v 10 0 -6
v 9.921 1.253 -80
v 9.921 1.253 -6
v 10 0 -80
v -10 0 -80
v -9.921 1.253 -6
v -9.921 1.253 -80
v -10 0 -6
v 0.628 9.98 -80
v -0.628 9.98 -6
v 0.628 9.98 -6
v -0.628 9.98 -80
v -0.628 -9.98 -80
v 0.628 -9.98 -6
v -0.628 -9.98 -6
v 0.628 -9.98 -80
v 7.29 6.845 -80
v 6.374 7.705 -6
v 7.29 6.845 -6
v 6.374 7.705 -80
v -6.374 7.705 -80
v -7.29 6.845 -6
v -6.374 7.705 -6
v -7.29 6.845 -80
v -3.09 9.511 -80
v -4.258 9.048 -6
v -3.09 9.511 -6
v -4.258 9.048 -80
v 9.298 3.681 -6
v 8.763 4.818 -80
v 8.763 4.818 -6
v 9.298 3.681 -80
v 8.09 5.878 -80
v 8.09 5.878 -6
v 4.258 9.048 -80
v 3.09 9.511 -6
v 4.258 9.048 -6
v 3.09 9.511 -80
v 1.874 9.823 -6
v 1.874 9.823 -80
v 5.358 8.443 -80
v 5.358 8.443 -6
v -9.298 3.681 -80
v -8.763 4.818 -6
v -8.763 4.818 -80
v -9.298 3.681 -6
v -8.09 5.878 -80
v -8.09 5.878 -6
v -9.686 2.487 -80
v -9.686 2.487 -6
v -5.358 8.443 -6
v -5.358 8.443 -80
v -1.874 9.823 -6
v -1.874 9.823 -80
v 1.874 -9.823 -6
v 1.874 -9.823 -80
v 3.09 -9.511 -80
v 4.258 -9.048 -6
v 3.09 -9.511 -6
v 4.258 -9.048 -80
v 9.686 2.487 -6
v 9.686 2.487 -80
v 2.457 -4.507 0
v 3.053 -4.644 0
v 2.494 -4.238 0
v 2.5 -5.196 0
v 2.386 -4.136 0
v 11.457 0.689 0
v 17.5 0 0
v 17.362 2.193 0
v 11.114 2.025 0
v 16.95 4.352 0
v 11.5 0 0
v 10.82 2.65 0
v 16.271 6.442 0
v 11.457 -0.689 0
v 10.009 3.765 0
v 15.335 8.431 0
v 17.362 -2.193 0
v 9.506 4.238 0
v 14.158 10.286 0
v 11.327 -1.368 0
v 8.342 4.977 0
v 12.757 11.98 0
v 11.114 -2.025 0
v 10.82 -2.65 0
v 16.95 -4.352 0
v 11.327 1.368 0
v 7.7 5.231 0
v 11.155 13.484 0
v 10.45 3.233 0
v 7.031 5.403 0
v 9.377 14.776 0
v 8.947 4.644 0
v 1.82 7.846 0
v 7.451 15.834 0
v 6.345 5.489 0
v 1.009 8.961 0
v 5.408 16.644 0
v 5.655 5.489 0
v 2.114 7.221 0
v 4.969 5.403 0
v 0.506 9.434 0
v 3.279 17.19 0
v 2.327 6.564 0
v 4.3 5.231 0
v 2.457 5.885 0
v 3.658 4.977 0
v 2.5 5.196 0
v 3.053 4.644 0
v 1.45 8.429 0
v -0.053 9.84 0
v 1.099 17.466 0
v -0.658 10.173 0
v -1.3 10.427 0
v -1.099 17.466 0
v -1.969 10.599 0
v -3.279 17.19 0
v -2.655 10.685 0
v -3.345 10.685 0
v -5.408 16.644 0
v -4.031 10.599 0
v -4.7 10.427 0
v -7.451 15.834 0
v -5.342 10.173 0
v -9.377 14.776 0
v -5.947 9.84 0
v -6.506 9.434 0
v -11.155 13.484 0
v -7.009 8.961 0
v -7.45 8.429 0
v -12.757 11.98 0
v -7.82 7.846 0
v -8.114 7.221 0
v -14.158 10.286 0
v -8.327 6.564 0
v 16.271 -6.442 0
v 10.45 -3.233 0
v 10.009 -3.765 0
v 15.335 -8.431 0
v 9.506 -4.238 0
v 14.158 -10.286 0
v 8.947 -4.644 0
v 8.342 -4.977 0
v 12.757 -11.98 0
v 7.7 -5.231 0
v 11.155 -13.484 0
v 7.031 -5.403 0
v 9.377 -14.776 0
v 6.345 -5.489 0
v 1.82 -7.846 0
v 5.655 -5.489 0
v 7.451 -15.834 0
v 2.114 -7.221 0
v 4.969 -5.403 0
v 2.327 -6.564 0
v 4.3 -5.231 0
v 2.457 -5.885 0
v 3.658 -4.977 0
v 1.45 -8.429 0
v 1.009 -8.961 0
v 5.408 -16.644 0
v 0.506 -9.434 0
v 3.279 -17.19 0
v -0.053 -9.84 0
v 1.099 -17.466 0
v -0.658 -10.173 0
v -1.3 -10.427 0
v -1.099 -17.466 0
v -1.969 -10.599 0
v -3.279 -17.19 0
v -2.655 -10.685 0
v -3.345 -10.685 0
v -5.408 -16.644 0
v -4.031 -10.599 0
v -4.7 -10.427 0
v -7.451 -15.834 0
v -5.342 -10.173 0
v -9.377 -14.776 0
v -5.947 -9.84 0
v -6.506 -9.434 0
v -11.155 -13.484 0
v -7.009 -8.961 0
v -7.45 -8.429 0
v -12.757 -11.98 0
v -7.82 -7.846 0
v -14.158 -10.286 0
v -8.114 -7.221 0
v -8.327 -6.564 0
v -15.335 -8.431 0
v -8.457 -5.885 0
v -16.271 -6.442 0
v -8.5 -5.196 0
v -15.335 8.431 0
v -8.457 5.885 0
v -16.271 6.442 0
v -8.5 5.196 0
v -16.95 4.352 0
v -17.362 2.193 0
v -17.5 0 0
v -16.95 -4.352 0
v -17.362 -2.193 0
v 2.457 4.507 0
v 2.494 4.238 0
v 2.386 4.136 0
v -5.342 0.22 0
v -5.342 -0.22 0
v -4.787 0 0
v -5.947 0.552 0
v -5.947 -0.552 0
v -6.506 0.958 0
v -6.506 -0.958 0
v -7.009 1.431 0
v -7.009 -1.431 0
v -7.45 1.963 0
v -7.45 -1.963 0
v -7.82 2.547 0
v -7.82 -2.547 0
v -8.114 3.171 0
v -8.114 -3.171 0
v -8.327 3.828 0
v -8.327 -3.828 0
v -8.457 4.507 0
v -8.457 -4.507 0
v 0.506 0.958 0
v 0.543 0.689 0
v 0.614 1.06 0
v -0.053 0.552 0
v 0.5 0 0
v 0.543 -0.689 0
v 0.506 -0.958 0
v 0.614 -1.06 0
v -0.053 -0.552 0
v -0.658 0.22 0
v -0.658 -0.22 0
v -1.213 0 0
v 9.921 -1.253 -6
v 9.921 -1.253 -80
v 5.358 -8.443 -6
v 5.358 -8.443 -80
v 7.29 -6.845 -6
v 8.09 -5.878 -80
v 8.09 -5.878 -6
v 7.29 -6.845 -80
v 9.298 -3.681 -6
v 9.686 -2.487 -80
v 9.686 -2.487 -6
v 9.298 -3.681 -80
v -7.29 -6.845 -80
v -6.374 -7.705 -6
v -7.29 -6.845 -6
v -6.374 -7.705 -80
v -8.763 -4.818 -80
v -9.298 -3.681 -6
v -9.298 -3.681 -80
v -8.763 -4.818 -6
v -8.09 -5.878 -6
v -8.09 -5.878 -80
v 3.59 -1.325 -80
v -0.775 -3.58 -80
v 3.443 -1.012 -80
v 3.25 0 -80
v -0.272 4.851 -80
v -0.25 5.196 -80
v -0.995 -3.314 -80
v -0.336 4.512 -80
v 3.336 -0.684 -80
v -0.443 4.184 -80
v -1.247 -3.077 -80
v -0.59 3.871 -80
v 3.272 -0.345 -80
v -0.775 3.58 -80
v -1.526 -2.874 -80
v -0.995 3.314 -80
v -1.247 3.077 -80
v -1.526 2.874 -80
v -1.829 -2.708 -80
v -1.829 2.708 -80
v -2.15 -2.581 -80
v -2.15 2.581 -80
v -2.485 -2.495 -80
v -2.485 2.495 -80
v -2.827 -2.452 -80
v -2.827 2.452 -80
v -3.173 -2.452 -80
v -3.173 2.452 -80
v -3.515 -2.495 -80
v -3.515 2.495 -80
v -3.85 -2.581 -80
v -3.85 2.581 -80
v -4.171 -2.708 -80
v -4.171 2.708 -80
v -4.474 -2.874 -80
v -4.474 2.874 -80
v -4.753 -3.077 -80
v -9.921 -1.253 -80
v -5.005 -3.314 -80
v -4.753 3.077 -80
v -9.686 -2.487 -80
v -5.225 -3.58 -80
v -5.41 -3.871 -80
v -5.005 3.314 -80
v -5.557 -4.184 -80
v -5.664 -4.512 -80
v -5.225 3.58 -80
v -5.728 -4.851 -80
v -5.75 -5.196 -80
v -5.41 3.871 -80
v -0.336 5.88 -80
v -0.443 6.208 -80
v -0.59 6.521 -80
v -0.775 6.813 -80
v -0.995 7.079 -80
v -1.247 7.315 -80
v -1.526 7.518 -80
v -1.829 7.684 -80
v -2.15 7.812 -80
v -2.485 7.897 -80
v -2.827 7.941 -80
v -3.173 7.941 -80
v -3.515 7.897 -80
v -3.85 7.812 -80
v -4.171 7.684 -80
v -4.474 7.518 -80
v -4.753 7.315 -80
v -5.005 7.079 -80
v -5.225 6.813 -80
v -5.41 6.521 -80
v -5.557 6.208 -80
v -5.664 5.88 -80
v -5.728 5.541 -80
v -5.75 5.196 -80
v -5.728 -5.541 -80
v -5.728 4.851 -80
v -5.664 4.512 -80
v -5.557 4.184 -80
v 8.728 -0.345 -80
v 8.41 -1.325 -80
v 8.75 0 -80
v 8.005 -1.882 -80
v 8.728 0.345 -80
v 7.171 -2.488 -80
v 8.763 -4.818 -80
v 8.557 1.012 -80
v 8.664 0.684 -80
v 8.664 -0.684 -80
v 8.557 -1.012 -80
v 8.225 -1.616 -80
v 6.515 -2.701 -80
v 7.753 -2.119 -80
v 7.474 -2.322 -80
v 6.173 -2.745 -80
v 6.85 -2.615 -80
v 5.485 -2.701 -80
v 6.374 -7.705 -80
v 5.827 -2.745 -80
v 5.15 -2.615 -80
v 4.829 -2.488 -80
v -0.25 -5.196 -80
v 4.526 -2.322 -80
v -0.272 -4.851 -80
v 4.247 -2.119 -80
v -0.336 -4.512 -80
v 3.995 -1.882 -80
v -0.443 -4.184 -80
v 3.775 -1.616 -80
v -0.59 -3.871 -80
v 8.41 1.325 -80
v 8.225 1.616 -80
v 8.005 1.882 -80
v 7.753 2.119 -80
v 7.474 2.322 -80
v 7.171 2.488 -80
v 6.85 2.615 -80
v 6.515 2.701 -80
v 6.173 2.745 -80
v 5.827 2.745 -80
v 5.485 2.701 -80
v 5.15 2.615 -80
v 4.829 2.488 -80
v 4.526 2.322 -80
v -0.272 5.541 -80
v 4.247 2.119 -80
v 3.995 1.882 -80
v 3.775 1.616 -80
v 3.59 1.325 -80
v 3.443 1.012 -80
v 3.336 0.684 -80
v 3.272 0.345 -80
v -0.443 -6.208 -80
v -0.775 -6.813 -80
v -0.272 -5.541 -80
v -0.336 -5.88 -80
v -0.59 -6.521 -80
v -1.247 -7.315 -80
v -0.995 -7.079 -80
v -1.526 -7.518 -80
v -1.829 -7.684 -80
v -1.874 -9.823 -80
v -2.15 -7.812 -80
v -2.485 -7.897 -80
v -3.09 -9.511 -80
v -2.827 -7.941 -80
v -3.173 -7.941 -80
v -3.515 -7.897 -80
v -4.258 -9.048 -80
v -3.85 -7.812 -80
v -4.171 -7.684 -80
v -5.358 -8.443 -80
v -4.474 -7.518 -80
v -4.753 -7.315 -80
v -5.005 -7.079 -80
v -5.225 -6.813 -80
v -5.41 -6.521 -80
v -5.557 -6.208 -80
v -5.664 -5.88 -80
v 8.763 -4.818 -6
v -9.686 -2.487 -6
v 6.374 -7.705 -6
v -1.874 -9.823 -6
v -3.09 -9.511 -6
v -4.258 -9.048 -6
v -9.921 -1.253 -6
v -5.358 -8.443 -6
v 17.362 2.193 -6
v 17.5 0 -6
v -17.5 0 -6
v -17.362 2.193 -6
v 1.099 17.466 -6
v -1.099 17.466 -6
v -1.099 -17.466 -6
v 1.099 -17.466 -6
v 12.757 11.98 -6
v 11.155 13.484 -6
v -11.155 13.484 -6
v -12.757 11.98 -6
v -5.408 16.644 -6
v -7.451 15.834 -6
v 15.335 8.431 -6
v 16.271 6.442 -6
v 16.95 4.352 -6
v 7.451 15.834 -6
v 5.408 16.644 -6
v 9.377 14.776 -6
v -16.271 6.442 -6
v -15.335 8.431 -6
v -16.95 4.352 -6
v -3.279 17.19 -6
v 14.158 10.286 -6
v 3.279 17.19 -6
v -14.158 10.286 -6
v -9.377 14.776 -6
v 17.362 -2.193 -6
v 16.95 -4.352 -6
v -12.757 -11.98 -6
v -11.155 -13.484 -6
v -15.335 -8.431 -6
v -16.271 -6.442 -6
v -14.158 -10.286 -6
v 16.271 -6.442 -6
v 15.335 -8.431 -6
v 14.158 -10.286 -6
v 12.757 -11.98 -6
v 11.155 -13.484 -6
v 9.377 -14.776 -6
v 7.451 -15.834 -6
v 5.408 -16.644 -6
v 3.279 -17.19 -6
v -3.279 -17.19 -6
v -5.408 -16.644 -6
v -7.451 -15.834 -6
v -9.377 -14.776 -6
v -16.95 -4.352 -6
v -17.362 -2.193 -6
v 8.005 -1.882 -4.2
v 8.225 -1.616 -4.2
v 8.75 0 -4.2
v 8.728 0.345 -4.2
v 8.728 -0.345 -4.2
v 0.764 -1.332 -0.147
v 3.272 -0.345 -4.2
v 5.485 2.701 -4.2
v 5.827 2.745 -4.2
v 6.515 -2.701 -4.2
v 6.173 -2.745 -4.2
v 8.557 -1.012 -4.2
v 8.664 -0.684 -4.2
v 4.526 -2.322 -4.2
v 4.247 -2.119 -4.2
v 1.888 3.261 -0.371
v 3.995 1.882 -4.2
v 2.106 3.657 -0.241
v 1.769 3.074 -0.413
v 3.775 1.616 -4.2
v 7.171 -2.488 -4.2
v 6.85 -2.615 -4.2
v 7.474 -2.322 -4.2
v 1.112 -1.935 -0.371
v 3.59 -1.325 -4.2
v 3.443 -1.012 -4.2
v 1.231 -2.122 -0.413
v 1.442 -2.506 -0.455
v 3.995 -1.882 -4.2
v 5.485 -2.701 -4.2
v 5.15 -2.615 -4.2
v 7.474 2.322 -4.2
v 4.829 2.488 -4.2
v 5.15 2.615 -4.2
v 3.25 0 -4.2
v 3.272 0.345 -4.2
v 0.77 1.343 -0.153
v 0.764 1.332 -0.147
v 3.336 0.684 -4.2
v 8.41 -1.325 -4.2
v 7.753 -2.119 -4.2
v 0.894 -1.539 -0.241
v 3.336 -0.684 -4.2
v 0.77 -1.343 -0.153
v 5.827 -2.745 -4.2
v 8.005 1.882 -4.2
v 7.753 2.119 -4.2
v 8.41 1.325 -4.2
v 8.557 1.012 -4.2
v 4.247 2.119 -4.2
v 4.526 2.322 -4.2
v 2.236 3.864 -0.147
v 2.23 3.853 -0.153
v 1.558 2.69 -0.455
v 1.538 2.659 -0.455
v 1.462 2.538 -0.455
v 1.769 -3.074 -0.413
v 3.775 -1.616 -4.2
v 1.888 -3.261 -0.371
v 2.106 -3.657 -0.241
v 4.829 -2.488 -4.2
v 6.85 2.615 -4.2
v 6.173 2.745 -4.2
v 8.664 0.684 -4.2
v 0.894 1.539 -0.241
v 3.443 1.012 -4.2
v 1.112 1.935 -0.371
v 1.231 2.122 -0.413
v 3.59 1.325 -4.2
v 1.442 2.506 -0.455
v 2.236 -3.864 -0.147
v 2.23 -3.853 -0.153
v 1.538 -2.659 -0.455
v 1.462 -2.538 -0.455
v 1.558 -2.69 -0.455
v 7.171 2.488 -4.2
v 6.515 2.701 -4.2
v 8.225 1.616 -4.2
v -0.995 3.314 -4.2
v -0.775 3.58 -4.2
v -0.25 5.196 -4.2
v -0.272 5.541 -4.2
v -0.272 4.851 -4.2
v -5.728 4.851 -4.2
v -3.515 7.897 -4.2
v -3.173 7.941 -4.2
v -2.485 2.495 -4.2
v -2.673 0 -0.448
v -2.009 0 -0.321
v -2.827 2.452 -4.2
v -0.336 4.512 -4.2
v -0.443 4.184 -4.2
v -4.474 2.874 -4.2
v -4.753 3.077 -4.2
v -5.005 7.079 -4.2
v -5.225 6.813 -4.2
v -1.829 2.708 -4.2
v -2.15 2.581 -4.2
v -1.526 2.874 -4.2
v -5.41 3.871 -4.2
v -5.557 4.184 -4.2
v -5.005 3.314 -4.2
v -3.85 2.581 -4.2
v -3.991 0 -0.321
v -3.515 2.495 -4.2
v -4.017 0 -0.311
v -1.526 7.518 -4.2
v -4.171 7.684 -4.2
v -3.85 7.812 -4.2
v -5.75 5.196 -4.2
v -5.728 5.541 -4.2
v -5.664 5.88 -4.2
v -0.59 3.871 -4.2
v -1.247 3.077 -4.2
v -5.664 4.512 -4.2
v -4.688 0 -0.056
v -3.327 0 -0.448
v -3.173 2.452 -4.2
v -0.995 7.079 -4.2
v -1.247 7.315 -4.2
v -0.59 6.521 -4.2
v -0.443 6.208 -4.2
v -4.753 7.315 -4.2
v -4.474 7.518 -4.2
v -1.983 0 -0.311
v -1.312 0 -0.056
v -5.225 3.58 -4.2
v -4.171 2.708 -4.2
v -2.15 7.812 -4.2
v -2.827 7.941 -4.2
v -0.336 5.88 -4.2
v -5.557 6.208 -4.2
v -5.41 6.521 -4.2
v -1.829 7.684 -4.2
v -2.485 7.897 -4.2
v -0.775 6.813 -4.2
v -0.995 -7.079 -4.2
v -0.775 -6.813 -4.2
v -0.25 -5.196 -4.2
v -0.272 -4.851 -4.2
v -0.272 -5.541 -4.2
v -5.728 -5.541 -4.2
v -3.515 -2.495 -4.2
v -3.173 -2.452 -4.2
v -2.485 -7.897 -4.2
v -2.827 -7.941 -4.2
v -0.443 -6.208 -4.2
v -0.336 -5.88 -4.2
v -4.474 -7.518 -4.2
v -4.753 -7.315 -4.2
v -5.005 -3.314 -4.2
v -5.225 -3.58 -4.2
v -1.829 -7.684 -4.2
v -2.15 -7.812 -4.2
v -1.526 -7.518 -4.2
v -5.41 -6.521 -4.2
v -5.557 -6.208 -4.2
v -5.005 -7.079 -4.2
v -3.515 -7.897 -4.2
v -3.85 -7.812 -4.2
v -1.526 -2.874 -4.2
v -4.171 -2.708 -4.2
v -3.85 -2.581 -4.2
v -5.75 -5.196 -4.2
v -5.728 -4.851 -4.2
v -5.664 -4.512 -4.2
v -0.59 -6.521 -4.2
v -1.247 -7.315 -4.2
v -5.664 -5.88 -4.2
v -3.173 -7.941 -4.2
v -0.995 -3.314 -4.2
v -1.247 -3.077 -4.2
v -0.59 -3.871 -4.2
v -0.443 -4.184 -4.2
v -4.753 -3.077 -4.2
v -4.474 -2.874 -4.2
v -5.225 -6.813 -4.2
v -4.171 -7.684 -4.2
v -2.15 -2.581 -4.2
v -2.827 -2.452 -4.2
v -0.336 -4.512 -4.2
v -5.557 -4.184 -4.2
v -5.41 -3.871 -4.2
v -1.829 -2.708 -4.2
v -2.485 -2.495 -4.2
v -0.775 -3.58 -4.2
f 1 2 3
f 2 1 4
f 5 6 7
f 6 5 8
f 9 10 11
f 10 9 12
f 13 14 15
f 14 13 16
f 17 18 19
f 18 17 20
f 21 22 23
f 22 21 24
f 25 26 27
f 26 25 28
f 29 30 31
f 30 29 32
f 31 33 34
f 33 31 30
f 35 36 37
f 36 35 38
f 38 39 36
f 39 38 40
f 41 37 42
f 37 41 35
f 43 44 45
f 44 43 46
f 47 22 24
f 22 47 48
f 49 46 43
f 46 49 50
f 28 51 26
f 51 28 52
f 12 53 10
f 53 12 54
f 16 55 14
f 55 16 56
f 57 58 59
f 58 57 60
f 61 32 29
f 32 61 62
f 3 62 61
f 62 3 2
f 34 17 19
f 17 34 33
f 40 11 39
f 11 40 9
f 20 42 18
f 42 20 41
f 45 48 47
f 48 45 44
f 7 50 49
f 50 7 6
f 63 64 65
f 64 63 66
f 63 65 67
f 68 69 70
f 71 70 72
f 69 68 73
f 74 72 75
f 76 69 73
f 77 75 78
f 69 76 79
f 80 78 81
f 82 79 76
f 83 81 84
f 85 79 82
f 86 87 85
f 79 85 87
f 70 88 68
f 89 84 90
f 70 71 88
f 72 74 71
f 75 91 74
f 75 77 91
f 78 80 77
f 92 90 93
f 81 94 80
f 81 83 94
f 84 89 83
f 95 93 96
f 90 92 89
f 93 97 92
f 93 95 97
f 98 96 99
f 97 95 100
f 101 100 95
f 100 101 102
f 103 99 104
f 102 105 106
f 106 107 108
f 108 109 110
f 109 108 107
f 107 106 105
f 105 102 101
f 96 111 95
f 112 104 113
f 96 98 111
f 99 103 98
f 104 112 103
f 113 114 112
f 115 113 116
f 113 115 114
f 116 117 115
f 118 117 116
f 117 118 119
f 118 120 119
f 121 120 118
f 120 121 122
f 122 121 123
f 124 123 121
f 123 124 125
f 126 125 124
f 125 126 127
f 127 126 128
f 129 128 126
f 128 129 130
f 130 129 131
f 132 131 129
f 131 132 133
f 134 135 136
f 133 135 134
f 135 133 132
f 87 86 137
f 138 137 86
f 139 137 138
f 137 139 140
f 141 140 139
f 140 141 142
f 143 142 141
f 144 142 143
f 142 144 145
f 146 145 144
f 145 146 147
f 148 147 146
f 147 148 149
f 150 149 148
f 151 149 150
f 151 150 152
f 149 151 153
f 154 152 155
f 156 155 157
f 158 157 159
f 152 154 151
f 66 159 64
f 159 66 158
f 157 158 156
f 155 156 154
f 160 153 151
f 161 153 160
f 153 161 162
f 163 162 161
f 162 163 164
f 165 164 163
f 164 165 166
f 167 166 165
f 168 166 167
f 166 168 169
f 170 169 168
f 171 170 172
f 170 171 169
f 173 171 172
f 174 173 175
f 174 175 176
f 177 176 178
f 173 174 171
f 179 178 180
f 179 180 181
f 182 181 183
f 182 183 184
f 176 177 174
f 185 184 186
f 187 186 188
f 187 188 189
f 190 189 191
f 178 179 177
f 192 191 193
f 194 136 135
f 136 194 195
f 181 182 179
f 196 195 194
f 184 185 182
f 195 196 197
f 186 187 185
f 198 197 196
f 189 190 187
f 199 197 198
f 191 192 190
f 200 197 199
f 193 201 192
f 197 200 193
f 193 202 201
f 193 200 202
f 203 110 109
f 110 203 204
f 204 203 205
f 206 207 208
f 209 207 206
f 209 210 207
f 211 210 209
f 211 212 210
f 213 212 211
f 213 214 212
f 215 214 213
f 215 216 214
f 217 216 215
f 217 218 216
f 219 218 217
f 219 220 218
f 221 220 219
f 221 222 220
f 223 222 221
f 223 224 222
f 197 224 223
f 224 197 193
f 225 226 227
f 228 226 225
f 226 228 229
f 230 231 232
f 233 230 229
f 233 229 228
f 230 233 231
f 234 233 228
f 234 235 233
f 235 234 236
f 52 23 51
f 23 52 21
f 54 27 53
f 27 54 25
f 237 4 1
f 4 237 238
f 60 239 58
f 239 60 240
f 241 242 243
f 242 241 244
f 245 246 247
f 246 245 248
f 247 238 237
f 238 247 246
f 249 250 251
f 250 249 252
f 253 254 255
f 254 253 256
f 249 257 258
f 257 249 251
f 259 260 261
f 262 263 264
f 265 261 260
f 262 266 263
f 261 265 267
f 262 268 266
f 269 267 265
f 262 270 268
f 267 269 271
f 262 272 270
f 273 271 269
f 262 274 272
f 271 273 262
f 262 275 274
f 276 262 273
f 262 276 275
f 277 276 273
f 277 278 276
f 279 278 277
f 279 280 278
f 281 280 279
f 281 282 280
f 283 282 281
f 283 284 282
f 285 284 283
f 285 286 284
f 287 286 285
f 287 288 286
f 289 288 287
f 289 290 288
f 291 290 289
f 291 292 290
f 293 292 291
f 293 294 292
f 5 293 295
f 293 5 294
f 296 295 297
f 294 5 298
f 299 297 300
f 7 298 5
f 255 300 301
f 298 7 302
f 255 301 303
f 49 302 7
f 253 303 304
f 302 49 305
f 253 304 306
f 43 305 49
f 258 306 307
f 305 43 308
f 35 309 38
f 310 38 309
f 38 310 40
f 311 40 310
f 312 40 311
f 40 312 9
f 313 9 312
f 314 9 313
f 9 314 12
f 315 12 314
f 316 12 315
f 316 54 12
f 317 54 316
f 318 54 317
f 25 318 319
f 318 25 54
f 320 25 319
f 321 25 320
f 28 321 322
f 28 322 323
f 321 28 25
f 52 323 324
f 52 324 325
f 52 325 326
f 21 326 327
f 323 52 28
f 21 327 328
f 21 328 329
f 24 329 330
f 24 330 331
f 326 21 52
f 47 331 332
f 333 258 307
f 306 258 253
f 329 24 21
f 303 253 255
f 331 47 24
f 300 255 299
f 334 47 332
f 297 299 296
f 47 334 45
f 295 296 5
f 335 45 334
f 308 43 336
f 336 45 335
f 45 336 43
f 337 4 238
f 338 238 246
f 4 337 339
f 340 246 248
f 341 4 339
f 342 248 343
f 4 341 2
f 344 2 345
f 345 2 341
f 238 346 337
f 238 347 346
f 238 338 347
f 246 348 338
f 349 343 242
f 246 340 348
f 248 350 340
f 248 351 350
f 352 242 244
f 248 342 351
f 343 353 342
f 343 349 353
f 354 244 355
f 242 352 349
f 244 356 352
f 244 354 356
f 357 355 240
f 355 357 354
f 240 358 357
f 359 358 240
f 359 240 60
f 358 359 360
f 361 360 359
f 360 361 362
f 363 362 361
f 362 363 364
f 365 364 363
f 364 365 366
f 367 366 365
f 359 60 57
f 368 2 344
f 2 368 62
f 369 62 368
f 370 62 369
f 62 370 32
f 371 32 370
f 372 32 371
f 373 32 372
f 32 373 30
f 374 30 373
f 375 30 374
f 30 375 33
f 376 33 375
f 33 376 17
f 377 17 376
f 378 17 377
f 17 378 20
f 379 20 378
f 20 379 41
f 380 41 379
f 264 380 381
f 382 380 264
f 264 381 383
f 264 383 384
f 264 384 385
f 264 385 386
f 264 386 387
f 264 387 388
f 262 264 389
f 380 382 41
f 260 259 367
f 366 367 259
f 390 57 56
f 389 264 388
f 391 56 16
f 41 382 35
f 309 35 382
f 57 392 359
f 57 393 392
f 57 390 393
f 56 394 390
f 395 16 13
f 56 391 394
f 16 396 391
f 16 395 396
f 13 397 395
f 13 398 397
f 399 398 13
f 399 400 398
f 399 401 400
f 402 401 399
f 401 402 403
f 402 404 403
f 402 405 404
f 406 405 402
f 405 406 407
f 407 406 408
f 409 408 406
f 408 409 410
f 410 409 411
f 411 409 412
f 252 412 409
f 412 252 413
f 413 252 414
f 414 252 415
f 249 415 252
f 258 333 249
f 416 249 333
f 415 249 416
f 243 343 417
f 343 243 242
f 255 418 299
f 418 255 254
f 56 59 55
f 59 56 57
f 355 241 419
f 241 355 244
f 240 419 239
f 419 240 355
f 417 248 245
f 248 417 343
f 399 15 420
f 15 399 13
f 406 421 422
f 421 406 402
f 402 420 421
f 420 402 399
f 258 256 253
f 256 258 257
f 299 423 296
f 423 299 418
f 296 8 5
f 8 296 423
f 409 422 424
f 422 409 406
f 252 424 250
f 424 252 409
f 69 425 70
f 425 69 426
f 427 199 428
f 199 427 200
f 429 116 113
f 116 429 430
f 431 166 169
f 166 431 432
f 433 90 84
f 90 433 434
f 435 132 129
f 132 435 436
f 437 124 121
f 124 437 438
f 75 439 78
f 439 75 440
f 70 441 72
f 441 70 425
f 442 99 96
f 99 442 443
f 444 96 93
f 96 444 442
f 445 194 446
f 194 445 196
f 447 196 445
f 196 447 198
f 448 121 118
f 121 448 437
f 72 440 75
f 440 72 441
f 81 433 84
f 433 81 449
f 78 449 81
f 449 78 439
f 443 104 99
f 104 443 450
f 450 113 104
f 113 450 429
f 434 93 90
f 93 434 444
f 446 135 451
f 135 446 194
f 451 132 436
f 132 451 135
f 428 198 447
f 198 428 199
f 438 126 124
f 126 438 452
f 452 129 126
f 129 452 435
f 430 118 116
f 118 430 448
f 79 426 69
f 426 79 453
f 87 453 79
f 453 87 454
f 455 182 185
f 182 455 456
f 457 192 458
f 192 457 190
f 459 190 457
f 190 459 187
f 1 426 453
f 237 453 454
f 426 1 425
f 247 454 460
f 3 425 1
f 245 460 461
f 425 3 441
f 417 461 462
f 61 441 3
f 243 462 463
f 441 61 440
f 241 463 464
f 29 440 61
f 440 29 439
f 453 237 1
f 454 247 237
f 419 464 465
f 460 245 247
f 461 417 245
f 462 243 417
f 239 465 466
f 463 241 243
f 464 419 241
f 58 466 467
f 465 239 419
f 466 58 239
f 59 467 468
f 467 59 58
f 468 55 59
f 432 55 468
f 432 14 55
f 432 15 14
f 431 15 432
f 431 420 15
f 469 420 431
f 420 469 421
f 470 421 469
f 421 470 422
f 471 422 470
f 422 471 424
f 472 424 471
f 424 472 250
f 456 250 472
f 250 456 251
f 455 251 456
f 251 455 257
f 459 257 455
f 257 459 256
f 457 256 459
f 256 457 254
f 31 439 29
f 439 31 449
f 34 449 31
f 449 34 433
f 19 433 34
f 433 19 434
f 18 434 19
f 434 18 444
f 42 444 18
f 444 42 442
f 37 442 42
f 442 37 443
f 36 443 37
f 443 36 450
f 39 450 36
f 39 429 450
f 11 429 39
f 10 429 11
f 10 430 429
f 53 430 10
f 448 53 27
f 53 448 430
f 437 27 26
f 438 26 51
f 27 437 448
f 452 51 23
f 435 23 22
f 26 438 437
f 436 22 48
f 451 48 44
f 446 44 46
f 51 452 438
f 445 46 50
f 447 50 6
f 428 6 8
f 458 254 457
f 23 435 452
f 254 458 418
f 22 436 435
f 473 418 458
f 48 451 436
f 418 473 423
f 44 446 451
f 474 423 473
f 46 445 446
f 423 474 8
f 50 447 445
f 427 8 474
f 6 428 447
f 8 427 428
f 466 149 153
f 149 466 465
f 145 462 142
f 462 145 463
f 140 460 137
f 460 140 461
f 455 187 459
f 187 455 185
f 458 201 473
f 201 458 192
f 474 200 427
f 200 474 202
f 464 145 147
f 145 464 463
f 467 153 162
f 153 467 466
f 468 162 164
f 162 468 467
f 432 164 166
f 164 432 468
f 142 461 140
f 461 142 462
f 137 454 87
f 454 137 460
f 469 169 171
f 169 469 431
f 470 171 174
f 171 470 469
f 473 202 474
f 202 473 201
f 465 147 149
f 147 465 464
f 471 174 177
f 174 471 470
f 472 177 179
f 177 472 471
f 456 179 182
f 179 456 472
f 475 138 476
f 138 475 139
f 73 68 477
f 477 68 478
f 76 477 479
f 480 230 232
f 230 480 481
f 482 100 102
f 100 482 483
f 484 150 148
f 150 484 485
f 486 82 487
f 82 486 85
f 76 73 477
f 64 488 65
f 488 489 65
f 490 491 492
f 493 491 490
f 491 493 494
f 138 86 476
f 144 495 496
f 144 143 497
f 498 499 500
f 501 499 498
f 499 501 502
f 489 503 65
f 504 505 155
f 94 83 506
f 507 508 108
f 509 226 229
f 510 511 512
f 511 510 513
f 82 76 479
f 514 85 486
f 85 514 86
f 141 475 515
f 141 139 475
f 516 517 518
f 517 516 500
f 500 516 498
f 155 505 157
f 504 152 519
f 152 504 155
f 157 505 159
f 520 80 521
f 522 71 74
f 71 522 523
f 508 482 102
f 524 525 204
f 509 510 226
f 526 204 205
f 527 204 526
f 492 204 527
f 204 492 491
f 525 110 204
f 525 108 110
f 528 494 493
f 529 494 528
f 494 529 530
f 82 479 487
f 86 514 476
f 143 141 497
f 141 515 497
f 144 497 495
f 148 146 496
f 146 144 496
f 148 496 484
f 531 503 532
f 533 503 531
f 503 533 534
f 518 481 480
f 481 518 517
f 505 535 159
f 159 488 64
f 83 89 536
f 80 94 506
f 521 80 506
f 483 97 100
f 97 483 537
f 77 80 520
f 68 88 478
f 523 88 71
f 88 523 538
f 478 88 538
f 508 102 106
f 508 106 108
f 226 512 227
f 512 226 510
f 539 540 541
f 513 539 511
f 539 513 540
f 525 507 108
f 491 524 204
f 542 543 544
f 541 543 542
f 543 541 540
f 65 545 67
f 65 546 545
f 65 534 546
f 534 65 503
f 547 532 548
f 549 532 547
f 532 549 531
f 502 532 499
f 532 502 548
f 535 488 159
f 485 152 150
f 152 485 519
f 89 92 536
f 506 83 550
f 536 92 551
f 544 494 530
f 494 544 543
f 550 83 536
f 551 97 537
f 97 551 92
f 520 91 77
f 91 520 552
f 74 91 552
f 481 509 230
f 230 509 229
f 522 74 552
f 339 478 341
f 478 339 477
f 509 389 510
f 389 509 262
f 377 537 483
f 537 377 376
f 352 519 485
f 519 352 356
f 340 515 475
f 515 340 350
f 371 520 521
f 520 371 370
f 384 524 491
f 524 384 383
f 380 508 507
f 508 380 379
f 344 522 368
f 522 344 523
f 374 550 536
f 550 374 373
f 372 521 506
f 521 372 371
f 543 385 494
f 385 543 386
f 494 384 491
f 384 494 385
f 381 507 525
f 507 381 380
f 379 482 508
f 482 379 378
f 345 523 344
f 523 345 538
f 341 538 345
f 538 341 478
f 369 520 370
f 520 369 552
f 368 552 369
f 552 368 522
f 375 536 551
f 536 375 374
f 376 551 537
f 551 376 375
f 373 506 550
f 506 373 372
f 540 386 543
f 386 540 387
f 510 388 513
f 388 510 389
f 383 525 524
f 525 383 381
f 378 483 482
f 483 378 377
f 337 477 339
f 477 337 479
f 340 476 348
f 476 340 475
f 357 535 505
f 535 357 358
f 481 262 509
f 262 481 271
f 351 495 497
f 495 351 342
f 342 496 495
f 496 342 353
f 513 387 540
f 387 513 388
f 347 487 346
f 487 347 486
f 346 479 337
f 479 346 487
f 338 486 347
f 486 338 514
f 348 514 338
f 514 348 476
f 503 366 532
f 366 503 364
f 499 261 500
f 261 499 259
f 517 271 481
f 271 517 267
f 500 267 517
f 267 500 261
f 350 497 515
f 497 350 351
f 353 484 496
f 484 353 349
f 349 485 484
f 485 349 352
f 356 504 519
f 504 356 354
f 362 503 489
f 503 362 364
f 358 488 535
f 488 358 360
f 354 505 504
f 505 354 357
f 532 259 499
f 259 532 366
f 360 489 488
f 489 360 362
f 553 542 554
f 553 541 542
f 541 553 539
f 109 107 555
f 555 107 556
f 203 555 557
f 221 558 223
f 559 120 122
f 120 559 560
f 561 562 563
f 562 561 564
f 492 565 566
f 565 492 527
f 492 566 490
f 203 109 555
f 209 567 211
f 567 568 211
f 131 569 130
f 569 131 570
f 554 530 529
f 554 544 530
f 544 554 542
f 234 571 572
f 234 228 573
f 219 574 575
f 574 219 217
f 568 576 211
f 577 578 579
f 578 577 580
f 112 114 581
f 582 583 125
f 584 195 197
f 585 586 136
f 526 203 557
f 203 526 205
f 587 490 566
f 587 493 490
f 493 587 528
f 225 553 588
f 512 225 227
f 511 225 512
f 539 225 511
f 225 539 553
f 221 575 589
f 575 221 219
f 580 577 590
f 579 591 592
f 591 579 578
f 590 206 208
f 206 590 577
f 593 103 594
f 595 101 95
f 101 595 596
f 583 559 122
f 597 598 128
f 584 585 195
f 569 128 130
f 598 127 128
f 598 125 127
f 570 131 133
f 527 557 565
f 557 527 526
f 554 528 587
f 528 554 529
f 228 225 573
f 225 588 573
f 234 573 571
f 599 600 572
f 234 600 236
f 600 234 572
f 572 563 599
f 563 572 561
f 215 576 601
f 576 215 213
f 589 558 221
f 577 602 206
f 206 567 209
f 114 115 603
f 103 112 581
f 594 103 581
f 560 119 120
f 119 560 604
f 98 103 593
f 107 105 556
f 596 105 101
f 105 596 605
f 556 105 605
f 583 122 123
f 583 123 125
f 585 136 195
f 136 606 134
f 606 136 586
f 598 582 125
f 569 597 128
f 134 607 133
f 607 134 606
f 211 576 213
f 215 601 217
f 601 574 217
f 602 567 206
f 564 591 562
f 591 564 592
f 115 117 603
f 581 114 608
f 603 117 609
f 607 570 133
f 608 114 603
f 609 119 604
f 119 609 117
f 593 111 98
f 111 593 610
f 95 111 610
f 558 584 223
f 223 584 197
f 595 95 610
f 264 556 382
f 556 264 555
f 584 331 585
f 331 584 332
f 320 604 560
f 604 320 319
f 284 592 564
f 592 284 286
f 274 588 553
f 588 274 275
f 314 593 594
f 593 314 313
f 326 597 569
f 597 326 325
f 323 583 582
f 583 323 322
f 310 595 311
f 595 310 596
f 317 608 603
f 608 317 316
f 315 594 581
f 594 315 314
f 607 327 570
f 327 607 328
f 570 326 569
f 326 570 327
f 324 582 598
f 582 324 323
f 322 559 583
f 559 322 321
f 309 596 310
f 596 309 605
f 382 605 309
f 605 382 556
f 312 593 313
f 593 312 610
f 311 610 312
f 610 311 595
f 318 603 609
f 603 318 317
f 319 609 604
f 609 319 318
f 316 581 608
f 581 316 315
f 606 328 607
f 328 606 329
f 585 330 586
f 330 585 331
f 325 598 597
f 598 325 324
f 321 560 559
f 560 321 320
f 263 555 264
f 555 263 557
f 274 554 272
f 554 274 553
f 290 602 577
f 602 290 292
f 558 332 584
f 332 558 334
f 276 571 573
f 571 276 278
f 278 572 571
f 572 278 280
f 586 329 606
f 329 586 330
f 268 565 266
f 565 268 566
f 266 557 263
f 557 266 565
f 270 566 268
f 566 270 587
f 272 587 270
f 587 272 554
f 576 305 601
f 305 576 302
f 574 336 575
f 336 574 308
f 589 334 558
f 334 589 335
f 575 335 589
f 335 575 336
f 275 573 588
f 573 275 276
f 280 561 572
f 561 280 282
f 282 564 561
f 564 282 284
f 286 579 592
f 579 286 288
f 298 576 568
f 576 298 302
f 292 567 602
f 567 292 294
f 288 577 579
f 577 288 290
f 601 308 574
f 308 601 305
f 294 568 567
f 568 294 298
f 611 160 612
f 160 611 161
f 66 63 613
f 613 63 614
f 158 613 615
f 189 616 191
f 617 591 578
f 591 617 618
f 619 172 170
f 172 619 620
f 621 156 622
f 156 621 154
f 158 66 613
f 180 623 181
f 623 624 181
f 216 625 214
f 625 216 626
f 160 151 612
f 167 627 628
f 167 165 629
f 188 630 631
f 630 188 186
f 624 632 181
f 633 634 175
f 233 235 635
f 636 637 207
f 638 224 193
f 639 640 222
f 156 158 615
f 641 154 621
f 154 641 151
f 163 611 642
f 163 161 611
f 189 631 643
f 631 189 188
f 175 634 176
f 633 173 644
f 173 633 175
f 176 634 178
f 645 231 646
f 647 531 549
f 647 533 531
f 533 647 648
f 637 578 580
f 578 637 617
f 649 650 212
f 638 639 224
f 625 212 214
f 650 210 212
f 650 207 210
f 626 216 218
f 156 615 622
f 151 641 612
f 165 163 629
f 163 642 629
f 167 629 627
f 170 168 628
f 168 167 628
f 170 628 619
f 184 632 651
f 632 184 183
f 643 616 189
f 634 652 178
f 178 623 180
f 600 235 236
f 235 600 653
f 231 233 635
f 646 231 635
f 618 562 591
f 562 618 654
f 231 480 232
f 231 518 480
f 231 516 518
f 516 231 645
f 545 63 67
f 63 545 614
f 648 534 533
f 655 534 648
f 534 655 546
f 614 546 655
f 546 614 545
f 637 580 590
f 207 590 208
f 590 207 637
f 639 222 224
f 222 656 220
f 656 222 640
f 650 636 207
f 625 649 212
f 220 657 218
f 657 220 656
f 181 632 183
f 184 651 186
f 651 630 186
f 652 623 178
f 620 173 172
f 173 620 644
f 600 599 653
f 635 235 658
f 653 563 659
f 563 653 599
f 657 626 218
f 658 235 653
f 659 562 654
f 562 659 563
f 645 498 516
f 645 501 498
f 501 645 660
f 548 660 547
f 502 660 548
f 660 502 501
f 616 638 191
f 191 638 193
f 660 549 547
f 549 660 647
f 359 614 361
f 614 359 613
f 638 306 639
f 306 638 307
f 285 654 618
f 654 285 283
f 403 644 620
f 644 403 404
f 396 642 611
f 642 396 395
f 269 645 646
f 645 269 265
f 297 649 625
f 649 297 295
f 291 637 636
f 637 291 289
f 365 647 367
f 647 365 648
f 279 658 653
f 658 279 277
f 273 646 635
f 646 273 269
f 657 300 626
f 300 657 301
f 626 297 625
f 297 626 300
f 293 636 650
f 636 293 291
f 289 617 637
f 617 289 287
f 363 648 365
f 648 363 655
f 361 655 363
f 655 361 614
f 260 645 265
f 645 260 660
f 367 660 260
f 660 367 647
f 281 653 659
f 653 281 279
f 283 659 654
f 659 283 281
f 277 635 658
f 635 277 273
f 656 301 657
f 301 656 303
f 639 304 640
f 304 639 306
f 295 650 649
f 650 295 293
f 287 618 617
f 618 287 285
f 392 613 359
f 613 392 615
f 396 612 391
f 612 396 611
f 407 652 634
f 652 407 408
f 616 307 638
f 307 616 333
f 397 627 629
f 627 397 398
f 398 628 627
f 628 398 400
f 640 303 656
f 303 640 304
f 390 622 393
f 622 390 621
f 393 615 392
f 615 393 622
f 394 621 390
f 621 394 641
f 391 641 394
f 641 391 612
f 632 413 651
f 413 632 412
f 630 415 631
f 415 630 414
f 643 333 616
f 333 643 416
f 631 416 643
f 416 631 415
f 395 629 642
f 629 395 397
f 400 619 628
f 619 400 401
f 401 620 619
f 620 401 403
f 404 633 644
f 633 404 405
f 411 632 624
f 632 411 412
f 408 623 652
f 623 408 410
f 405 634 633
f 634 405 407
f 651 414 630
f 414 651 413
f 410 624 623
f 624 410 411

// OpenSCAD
$fn = 50;


difference() {
	union() {
		translate(v = [0, 0, -80.0000000000]) {
			cylinder(h = 80, r = 10.0000000000);
		}
		translate(v = [0, 0, -6.0000000000]) {
			cylinder(h = 6, r = 17.5000000000);
		}
	}
	union() {
		translate(v = [6.0000000000, 0.0000000000, 0]) {
			rotate(a = [0, 0, 0]) {
				difference() {
					union() {
						#translate(v = [0, 0, -80.0000000000]) {
							cylinder(h = 80, r = 2.2500000000);
						}
						#translate(v = [0, 0, -4.2000000000]) {
							cylinder(h = 4.2000000000, r = 10.0000000000, r1 = 2.7500000000, r2 = 5.5000000000);
						}
						#translate(v = [0, 0, -80.0000000000]) {
							cylinder(h = 80, r = 2.7500000000);
						}
						#translate(v = [0, 0, -80.0000000000]) {
							cylinder(h = 80, r = 2.2500000000);
						}
					}
					union();
				}
			}
		}
		translate(v = [-3.0000000000, 5.1961524227, 0]) {
			rotate(a = [0, 0, 0]) {
				difference() {
					union() {
						#translate(v = [0, 0, -80.0000000000]) {
							cylinder(h = 80, r = 2.2500000000);
						}
						#translate(v = [0, 0, -4.2000000000]) {
							cylinder(h = 4.2000000000, r = 10.0000000000, r1 = 2.7500000000, r2 = 5.5000000000);
						}
						#translate(v = [0, 0, -80.0000000000]) {
							cylinder(h = 80, r = 2.7500000000);
						}
						#translate(v = [0, 0, -80.0000000000]) {
							cylinder(h = 80, r = 2.2500000000);
						}
					}
					union();
				}
			}
		}
		translate(v = [-3.0000000000, -5.1961524227, 0]) {
			rotate(a = [0, 0, 0]) {
				difference() {
					union() {
						#translate(v = [0, 0, -80.0000000000]) {
							cylinder(h = 80, r = 2.2500000000);
						}
						#translate(v = [0, 0, -4.2000000000]) {
							cylinder(h = 4.2000000000, r = 10.0000000000, r1 = 2.7500000000, r2 = 5.5000000000);
						}
						#translate(v = [0, 0, -80.0000000000]) {
							cylinder(h = 80, r = 2.7500000000);
						}
						#translate(v = [0, 0, -80.0000000000]) {
							cylinder(h = 80, r = 2.2500000000);
						}
					}
					union();
				}
			}
		}
	}
}
